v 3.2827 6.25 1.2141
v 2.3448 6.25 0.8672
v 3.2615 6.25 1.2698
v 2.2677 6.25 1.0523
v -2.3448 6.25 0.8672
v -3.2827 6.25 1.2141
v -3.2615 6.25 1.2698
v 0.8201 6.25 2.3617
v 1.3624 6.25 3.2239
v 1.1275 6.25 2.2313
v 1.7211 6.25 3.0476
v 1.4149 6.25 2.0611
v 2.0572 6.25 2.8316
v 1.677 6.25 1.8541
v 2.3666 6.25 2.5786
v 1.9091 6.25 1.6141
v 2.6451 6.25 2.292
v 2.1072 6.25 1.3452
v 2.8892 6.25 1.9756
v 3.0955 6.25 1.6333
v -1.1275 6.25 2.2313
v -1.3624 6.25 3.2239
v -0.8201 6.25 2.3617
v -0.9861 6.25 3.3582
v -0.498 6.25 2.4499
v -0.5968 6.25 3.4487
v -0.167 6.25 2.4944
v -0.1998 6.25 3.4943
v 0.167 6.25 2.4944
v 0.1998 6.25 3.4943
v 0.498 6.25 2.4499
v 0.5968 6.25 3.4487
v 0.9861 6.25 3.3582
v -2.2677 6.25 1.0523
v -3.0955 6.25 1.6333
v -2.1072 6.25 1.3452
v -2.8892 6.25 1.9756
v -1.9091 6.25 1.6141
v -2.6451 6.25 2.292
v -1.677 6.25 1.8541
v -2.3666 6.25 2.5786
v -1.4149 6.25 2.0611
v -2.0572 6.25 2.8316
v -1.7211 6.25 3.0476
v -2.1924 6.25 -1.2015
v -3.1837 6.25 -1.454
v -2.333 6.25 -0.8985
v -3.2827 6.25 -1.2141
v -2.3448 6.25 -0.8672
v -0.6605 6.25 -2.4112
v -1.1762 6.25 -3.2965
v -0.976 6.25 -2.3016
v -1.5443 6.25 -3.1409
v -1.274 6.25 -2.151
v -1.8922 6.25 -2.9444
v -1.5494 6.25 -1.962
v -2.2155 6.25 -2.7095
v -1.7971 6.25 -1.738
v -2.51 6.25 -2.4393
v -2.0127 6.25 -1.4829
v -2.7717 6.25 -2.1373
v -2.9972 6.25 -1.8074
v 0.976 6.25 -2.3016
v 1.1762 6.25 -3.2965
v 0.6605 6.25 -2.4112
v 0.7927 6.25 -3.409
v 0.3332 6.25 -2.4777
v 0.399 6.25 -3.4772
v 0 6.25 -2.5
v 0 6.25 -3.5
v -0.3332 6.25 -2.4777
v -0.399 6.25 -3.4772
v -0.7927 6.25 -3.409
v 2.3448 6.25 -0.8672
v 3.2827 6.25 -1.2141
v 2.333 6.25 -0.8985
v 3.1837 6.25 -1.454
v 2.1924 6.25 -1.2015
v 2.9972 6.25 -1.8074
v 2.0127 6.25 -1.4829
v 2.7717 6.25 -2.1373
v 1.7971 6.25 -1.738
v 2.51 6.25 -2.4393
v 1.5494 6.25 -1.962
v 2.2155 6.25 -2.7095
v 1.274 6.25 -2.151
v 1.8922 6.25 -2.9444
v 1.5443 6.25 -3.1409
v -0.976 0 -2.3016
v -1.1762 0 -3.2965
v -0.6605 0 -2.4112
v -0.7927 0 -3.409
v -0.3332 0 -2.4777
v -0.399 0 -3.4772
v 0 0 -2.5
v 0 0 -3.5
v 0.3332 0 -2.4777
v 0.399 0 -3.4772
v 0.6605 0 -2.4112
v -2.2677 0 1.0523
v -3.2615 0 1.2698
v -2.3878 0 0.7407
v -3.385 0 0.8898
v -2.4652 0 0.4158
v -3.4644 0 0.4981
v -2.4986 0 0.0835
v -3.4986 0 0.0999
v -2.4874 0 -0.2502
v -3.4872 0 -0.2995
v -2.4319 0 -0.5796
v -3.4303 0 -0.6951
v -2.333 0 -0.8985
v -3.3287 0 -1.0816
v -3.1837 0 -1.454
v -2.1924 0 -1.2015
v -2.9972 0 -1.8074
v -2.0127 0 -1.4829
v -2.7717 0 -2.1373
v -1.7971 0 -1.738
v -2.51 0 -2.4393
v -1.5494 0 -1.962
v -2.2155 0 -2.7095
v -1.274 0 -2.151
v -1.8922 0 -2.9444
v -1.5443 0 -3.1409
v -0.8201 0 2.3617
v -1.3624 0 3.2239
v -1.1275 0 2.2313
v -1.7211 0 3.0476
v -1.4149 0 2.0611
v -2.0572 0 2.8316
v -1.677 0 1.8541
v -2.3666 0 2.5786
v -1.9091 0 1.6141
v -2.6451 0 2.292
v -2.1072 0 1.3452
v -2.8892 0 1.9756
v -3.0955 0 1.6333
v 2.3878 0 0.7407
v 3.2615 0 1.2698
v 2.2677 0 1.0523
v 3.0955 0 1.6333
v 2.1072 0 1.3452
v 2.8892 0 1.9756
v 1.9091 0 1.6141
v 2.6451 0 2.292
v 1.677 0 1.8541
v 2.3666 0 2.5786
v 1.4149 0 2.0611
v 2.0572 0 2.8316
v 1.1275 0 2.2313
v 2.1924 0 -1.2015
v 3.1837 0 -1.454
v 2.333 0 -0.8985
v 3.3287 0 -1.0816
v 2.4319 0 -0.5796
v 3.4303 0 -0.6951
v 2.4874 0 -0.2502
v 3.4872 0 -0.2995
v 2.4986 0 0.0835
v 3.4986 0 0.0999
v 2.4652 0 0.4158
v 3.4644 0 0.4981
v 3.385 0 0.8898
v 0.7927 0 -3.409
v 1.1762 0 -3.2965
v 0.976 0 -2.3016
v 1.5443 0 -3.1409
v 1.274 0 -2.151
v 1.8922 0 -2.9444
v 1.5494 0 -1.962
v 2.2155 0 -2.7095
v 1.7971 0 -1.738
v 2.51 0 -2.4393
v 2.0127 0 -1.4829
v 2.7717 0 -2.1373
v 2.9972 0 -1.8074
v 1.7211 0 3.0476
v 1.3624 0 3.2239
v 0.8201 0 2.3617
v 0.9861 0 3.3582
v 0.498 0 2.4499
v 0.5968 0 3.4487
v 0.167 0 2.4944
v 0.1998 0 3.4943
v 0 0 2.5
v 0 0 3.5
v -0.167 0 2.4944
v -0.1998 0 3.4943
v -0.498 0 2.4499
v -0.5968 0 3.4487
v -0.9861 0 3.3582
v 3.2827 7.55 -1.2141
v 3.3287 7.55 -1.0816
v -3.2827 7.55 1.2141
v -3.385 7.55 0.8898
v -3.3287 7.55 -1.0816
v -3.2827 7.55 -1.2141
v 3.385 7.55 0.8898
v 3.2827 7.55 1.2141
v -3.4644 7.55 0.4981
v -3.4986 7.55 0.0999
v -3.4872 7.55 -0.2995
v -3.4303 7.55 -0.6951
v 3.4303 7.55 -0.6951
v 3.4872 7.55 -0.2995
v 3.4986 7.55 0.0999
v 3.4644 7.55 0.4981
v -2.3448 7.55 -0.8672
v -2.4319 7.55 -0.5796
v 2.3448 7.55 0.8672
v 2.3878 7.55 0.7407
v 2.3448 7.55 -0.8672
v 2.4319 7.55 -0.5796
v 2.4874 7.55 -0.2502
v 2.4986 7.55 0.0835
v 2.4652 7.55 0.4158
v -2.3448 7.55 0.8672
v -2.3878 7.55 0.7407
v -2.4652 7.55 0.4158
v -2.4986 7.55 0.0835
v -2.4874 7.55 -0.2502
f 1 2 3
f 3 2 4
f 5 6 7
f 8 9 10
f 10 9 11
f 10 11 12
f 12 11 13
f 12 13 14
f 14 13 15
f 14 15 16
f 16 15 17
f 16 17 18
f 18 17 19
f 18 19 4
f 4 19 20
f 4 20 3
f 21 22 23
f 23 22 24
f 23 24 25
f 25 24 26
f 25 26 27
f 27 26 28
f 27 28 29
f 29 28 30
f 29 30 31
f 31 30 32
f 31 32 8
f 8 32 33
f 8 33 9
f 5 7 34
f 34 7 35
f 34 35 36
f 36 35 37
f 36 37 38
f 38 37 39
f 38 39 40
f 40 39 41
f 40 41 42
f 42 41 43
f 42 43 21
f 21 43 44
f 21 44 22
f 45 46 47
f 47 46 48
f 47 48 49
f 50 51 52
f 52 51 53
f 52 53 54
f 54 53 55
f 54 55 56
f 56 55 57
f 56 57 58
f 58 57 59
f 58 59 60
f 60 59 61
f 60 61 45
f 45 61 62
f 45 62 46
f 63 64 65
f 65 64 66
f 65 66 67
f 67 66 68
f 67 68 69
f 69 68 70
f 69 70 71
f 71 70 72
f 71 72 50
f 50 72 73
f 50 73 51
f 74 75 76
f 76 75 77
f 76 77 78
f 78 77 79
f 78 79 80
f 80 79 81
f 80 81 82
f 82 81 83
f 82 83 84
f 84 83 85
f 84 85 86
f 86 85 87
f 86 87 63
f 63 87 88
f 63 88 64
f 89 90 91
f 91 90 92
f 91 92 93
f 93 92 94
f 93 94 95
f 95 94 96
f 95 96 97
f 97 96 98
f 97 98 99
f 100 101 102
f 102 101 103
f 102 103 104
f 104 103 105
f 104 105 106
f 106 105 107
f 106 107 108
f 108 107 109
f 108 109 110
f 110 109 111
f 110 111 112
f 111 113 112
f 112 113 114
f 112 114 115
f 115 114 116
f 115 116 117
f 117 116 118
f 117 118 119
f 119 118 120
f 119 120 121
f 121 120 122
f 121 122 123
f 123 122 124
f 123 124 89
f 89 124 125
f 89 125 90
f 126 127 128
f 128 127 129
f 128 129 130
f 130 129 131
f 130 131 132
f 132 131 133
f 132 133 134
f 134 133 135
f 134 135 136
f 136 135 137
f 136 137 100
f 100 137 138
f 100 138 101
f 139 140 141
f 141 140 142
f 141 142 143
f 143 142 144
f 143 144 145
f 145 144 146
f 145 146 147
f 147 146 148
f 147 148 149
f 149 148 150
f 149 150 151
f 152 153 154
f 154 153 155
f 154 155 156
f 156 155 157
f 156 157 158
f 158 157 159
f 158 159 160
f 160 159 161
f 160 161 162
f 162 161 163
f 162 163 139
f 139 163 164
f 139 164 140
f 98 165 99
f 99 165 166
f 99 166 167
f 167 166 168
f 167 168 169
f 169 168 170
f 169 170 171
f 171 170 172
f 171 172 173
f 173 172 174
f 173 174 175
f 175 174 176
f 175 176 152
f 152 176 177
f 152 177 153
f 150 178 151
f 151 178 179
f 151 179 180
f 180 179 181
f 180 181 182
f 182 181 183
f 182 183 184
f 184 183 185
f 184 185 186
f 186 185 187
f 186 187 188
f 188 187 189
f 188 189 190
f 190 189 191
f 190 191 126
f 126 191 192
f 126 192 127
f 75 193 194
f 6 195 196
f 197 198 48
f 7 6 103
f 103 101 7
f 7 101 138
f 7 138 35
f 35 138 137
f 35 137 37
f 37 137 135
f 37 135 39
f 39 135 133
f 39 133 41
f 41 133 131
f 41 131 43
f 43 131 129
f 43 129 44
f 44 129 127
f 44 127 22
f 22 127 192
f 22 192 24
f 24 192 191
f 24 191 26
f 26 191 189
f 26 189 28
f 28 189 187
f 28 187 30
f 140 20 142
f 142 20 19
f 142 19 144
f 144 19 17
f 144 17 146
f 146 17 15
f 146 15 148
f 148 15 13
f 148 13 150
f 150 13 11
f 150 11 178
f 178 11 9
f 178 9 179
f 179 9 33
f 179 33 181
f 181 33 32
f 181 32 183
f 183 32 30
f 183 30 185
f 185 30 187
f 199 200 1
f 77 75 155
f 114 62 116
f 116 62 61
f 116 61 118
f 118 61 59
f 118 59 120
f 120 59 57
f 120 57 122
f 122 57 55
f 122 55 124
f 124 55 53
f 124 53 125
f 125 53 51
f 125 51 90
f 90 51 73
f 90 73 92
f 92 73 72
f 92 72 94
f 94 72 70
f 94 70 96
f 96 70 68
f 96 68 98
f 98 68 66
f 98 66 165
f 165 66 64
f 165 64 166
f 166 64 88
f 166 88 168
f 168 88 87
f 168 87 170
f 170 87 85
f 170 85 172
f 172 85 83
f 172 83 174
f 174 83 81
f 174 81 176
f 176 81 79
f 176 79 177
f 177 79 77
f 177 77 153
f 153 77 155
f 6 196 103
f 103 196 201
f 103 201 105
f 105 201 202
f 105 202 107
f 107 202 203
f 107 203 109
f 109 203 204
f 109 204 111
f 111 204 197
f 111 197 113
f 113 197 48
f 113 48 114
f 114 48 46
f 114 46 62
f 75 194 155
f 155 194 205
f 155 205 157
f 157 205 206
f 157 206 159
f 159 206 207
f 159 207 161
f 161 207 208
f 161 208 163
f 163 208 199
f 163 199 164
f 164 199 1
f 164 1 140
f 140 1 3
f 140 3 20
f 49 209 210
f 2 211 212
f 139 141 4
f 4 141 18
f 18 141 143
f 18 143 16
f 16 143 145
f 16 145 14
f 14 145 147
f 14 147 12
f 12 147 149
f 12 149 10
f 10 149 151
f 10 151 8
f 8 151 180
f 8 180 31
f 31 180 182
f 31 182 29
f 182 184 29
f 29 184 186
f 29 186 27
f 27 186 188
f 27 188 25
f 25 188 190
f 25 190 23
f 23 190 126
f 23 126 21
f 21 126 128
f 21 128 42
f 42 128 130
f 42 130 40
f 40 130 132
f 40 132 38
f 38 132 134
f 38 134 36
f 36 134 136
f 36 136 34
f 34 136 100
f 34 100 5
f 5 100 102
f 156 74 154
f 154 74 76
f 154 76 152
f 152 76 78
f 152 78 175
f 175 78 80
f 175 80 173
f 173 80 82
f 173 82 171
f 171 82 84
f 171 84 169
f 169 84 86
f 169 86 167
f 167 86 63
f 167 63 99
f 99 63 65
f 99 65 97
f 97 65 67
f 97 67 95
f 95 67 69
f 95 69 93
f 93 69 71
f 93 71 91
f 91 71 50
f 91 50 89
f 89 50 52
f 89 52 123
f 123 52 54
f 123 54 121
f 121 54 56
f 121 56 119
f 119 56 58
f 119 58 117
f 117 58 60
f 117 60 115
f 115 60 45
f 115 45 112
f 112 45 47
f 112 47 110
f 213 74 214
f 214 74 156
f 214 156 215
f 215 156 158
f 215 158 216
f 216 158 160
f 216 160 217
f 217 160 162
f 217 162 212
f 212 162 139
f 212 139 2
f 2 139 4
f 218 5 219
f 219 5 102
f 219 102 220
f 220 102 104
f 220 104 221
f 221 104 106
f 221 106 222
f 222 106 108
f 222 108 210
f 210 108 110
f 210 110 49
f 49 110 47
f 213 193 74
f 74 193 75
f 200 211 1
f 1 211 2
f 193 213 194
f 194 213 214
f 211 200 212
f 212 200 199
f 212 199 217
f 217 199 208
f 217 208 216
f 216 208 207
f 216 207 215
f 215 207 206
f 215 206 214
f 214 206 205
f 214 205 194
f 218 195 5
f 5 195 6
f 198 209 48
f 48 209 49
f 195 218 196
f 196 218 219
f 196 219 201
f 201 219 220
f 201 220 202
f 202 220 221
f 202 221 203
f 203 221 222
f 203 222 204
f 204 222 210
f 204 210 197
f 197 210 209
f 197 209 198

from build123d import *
from build123d.topology import SkipClean

# Parameters (mm, degrees)
SKETCH1_R           = 3.5
SKETCH1_R_2         = 2.5
BOSS_EXTRUDE1_DEPTH = 6.25
BOSS_EXTRUDE2_DEPTH = 1.3


with BuildPart() as part:
    # Sketch1 → Boss-Extrude1 (new body)
    with BuildSketch(Plane(origin=(0, 0, 0), x_dir=(1, 0, 0), z_dir=(0, 1, 0))):
        with Locations(Location((0, 0, 0), (0, 0, 270))):
            Circle(SKETCH1_R)
        with Locations(Location((0, 0, 0), (0, 0, 270))):
            Circle(SKETCH1_R_2, mode=Mode.SUBTRACT)
    extrude(amount=BOSS_EXTRUDE1_DEPTH)

    # Sketch2 → Boss-Extrude2 (add)
    with SkipClean():  # the faces are left unmerged after this step: merging them gives an invalid solid
        with BuildSketch(Plane(origin=(0, 6.25, 0), x_dir=(1, 0, 0), z_dir=(0, 1, 0))):
            with BuildLine():
                Line((2.344759123, 0.867239676), (3.282662772, 1.214135546))
                ThreePointArc((3.282662772, 1.214135546), (3.5, 0), (3.282662772, -1.214135546))
                Line((3.282662772, -1.214135546), (2.344759123, -0.867239676))
                ThreePointArc((2.344759123, -0.867239676), (2.5, 0), (2.344759123, 0.867239676))
            make_face()
            with BuildLine():
                Line((-2.344759123, -0.867239676), (-3.282662772, -1.214135546))
                ThreePointArc((-3.282662772, -1.214135546), (-3.5, 0), (-3.282662772, 1.214135546))
                Line((-3.282662772, 1.214135546), (-2.344759123, 0.867239676))
                ThreePointArc((-2.344759123, 0.867239676), (-2.5, 0), (-2.344759123, -0.867239676))
            make_face()
        extrude(amount=BOSS_EXTRUDE2_DEPTH)


solid = part.part
